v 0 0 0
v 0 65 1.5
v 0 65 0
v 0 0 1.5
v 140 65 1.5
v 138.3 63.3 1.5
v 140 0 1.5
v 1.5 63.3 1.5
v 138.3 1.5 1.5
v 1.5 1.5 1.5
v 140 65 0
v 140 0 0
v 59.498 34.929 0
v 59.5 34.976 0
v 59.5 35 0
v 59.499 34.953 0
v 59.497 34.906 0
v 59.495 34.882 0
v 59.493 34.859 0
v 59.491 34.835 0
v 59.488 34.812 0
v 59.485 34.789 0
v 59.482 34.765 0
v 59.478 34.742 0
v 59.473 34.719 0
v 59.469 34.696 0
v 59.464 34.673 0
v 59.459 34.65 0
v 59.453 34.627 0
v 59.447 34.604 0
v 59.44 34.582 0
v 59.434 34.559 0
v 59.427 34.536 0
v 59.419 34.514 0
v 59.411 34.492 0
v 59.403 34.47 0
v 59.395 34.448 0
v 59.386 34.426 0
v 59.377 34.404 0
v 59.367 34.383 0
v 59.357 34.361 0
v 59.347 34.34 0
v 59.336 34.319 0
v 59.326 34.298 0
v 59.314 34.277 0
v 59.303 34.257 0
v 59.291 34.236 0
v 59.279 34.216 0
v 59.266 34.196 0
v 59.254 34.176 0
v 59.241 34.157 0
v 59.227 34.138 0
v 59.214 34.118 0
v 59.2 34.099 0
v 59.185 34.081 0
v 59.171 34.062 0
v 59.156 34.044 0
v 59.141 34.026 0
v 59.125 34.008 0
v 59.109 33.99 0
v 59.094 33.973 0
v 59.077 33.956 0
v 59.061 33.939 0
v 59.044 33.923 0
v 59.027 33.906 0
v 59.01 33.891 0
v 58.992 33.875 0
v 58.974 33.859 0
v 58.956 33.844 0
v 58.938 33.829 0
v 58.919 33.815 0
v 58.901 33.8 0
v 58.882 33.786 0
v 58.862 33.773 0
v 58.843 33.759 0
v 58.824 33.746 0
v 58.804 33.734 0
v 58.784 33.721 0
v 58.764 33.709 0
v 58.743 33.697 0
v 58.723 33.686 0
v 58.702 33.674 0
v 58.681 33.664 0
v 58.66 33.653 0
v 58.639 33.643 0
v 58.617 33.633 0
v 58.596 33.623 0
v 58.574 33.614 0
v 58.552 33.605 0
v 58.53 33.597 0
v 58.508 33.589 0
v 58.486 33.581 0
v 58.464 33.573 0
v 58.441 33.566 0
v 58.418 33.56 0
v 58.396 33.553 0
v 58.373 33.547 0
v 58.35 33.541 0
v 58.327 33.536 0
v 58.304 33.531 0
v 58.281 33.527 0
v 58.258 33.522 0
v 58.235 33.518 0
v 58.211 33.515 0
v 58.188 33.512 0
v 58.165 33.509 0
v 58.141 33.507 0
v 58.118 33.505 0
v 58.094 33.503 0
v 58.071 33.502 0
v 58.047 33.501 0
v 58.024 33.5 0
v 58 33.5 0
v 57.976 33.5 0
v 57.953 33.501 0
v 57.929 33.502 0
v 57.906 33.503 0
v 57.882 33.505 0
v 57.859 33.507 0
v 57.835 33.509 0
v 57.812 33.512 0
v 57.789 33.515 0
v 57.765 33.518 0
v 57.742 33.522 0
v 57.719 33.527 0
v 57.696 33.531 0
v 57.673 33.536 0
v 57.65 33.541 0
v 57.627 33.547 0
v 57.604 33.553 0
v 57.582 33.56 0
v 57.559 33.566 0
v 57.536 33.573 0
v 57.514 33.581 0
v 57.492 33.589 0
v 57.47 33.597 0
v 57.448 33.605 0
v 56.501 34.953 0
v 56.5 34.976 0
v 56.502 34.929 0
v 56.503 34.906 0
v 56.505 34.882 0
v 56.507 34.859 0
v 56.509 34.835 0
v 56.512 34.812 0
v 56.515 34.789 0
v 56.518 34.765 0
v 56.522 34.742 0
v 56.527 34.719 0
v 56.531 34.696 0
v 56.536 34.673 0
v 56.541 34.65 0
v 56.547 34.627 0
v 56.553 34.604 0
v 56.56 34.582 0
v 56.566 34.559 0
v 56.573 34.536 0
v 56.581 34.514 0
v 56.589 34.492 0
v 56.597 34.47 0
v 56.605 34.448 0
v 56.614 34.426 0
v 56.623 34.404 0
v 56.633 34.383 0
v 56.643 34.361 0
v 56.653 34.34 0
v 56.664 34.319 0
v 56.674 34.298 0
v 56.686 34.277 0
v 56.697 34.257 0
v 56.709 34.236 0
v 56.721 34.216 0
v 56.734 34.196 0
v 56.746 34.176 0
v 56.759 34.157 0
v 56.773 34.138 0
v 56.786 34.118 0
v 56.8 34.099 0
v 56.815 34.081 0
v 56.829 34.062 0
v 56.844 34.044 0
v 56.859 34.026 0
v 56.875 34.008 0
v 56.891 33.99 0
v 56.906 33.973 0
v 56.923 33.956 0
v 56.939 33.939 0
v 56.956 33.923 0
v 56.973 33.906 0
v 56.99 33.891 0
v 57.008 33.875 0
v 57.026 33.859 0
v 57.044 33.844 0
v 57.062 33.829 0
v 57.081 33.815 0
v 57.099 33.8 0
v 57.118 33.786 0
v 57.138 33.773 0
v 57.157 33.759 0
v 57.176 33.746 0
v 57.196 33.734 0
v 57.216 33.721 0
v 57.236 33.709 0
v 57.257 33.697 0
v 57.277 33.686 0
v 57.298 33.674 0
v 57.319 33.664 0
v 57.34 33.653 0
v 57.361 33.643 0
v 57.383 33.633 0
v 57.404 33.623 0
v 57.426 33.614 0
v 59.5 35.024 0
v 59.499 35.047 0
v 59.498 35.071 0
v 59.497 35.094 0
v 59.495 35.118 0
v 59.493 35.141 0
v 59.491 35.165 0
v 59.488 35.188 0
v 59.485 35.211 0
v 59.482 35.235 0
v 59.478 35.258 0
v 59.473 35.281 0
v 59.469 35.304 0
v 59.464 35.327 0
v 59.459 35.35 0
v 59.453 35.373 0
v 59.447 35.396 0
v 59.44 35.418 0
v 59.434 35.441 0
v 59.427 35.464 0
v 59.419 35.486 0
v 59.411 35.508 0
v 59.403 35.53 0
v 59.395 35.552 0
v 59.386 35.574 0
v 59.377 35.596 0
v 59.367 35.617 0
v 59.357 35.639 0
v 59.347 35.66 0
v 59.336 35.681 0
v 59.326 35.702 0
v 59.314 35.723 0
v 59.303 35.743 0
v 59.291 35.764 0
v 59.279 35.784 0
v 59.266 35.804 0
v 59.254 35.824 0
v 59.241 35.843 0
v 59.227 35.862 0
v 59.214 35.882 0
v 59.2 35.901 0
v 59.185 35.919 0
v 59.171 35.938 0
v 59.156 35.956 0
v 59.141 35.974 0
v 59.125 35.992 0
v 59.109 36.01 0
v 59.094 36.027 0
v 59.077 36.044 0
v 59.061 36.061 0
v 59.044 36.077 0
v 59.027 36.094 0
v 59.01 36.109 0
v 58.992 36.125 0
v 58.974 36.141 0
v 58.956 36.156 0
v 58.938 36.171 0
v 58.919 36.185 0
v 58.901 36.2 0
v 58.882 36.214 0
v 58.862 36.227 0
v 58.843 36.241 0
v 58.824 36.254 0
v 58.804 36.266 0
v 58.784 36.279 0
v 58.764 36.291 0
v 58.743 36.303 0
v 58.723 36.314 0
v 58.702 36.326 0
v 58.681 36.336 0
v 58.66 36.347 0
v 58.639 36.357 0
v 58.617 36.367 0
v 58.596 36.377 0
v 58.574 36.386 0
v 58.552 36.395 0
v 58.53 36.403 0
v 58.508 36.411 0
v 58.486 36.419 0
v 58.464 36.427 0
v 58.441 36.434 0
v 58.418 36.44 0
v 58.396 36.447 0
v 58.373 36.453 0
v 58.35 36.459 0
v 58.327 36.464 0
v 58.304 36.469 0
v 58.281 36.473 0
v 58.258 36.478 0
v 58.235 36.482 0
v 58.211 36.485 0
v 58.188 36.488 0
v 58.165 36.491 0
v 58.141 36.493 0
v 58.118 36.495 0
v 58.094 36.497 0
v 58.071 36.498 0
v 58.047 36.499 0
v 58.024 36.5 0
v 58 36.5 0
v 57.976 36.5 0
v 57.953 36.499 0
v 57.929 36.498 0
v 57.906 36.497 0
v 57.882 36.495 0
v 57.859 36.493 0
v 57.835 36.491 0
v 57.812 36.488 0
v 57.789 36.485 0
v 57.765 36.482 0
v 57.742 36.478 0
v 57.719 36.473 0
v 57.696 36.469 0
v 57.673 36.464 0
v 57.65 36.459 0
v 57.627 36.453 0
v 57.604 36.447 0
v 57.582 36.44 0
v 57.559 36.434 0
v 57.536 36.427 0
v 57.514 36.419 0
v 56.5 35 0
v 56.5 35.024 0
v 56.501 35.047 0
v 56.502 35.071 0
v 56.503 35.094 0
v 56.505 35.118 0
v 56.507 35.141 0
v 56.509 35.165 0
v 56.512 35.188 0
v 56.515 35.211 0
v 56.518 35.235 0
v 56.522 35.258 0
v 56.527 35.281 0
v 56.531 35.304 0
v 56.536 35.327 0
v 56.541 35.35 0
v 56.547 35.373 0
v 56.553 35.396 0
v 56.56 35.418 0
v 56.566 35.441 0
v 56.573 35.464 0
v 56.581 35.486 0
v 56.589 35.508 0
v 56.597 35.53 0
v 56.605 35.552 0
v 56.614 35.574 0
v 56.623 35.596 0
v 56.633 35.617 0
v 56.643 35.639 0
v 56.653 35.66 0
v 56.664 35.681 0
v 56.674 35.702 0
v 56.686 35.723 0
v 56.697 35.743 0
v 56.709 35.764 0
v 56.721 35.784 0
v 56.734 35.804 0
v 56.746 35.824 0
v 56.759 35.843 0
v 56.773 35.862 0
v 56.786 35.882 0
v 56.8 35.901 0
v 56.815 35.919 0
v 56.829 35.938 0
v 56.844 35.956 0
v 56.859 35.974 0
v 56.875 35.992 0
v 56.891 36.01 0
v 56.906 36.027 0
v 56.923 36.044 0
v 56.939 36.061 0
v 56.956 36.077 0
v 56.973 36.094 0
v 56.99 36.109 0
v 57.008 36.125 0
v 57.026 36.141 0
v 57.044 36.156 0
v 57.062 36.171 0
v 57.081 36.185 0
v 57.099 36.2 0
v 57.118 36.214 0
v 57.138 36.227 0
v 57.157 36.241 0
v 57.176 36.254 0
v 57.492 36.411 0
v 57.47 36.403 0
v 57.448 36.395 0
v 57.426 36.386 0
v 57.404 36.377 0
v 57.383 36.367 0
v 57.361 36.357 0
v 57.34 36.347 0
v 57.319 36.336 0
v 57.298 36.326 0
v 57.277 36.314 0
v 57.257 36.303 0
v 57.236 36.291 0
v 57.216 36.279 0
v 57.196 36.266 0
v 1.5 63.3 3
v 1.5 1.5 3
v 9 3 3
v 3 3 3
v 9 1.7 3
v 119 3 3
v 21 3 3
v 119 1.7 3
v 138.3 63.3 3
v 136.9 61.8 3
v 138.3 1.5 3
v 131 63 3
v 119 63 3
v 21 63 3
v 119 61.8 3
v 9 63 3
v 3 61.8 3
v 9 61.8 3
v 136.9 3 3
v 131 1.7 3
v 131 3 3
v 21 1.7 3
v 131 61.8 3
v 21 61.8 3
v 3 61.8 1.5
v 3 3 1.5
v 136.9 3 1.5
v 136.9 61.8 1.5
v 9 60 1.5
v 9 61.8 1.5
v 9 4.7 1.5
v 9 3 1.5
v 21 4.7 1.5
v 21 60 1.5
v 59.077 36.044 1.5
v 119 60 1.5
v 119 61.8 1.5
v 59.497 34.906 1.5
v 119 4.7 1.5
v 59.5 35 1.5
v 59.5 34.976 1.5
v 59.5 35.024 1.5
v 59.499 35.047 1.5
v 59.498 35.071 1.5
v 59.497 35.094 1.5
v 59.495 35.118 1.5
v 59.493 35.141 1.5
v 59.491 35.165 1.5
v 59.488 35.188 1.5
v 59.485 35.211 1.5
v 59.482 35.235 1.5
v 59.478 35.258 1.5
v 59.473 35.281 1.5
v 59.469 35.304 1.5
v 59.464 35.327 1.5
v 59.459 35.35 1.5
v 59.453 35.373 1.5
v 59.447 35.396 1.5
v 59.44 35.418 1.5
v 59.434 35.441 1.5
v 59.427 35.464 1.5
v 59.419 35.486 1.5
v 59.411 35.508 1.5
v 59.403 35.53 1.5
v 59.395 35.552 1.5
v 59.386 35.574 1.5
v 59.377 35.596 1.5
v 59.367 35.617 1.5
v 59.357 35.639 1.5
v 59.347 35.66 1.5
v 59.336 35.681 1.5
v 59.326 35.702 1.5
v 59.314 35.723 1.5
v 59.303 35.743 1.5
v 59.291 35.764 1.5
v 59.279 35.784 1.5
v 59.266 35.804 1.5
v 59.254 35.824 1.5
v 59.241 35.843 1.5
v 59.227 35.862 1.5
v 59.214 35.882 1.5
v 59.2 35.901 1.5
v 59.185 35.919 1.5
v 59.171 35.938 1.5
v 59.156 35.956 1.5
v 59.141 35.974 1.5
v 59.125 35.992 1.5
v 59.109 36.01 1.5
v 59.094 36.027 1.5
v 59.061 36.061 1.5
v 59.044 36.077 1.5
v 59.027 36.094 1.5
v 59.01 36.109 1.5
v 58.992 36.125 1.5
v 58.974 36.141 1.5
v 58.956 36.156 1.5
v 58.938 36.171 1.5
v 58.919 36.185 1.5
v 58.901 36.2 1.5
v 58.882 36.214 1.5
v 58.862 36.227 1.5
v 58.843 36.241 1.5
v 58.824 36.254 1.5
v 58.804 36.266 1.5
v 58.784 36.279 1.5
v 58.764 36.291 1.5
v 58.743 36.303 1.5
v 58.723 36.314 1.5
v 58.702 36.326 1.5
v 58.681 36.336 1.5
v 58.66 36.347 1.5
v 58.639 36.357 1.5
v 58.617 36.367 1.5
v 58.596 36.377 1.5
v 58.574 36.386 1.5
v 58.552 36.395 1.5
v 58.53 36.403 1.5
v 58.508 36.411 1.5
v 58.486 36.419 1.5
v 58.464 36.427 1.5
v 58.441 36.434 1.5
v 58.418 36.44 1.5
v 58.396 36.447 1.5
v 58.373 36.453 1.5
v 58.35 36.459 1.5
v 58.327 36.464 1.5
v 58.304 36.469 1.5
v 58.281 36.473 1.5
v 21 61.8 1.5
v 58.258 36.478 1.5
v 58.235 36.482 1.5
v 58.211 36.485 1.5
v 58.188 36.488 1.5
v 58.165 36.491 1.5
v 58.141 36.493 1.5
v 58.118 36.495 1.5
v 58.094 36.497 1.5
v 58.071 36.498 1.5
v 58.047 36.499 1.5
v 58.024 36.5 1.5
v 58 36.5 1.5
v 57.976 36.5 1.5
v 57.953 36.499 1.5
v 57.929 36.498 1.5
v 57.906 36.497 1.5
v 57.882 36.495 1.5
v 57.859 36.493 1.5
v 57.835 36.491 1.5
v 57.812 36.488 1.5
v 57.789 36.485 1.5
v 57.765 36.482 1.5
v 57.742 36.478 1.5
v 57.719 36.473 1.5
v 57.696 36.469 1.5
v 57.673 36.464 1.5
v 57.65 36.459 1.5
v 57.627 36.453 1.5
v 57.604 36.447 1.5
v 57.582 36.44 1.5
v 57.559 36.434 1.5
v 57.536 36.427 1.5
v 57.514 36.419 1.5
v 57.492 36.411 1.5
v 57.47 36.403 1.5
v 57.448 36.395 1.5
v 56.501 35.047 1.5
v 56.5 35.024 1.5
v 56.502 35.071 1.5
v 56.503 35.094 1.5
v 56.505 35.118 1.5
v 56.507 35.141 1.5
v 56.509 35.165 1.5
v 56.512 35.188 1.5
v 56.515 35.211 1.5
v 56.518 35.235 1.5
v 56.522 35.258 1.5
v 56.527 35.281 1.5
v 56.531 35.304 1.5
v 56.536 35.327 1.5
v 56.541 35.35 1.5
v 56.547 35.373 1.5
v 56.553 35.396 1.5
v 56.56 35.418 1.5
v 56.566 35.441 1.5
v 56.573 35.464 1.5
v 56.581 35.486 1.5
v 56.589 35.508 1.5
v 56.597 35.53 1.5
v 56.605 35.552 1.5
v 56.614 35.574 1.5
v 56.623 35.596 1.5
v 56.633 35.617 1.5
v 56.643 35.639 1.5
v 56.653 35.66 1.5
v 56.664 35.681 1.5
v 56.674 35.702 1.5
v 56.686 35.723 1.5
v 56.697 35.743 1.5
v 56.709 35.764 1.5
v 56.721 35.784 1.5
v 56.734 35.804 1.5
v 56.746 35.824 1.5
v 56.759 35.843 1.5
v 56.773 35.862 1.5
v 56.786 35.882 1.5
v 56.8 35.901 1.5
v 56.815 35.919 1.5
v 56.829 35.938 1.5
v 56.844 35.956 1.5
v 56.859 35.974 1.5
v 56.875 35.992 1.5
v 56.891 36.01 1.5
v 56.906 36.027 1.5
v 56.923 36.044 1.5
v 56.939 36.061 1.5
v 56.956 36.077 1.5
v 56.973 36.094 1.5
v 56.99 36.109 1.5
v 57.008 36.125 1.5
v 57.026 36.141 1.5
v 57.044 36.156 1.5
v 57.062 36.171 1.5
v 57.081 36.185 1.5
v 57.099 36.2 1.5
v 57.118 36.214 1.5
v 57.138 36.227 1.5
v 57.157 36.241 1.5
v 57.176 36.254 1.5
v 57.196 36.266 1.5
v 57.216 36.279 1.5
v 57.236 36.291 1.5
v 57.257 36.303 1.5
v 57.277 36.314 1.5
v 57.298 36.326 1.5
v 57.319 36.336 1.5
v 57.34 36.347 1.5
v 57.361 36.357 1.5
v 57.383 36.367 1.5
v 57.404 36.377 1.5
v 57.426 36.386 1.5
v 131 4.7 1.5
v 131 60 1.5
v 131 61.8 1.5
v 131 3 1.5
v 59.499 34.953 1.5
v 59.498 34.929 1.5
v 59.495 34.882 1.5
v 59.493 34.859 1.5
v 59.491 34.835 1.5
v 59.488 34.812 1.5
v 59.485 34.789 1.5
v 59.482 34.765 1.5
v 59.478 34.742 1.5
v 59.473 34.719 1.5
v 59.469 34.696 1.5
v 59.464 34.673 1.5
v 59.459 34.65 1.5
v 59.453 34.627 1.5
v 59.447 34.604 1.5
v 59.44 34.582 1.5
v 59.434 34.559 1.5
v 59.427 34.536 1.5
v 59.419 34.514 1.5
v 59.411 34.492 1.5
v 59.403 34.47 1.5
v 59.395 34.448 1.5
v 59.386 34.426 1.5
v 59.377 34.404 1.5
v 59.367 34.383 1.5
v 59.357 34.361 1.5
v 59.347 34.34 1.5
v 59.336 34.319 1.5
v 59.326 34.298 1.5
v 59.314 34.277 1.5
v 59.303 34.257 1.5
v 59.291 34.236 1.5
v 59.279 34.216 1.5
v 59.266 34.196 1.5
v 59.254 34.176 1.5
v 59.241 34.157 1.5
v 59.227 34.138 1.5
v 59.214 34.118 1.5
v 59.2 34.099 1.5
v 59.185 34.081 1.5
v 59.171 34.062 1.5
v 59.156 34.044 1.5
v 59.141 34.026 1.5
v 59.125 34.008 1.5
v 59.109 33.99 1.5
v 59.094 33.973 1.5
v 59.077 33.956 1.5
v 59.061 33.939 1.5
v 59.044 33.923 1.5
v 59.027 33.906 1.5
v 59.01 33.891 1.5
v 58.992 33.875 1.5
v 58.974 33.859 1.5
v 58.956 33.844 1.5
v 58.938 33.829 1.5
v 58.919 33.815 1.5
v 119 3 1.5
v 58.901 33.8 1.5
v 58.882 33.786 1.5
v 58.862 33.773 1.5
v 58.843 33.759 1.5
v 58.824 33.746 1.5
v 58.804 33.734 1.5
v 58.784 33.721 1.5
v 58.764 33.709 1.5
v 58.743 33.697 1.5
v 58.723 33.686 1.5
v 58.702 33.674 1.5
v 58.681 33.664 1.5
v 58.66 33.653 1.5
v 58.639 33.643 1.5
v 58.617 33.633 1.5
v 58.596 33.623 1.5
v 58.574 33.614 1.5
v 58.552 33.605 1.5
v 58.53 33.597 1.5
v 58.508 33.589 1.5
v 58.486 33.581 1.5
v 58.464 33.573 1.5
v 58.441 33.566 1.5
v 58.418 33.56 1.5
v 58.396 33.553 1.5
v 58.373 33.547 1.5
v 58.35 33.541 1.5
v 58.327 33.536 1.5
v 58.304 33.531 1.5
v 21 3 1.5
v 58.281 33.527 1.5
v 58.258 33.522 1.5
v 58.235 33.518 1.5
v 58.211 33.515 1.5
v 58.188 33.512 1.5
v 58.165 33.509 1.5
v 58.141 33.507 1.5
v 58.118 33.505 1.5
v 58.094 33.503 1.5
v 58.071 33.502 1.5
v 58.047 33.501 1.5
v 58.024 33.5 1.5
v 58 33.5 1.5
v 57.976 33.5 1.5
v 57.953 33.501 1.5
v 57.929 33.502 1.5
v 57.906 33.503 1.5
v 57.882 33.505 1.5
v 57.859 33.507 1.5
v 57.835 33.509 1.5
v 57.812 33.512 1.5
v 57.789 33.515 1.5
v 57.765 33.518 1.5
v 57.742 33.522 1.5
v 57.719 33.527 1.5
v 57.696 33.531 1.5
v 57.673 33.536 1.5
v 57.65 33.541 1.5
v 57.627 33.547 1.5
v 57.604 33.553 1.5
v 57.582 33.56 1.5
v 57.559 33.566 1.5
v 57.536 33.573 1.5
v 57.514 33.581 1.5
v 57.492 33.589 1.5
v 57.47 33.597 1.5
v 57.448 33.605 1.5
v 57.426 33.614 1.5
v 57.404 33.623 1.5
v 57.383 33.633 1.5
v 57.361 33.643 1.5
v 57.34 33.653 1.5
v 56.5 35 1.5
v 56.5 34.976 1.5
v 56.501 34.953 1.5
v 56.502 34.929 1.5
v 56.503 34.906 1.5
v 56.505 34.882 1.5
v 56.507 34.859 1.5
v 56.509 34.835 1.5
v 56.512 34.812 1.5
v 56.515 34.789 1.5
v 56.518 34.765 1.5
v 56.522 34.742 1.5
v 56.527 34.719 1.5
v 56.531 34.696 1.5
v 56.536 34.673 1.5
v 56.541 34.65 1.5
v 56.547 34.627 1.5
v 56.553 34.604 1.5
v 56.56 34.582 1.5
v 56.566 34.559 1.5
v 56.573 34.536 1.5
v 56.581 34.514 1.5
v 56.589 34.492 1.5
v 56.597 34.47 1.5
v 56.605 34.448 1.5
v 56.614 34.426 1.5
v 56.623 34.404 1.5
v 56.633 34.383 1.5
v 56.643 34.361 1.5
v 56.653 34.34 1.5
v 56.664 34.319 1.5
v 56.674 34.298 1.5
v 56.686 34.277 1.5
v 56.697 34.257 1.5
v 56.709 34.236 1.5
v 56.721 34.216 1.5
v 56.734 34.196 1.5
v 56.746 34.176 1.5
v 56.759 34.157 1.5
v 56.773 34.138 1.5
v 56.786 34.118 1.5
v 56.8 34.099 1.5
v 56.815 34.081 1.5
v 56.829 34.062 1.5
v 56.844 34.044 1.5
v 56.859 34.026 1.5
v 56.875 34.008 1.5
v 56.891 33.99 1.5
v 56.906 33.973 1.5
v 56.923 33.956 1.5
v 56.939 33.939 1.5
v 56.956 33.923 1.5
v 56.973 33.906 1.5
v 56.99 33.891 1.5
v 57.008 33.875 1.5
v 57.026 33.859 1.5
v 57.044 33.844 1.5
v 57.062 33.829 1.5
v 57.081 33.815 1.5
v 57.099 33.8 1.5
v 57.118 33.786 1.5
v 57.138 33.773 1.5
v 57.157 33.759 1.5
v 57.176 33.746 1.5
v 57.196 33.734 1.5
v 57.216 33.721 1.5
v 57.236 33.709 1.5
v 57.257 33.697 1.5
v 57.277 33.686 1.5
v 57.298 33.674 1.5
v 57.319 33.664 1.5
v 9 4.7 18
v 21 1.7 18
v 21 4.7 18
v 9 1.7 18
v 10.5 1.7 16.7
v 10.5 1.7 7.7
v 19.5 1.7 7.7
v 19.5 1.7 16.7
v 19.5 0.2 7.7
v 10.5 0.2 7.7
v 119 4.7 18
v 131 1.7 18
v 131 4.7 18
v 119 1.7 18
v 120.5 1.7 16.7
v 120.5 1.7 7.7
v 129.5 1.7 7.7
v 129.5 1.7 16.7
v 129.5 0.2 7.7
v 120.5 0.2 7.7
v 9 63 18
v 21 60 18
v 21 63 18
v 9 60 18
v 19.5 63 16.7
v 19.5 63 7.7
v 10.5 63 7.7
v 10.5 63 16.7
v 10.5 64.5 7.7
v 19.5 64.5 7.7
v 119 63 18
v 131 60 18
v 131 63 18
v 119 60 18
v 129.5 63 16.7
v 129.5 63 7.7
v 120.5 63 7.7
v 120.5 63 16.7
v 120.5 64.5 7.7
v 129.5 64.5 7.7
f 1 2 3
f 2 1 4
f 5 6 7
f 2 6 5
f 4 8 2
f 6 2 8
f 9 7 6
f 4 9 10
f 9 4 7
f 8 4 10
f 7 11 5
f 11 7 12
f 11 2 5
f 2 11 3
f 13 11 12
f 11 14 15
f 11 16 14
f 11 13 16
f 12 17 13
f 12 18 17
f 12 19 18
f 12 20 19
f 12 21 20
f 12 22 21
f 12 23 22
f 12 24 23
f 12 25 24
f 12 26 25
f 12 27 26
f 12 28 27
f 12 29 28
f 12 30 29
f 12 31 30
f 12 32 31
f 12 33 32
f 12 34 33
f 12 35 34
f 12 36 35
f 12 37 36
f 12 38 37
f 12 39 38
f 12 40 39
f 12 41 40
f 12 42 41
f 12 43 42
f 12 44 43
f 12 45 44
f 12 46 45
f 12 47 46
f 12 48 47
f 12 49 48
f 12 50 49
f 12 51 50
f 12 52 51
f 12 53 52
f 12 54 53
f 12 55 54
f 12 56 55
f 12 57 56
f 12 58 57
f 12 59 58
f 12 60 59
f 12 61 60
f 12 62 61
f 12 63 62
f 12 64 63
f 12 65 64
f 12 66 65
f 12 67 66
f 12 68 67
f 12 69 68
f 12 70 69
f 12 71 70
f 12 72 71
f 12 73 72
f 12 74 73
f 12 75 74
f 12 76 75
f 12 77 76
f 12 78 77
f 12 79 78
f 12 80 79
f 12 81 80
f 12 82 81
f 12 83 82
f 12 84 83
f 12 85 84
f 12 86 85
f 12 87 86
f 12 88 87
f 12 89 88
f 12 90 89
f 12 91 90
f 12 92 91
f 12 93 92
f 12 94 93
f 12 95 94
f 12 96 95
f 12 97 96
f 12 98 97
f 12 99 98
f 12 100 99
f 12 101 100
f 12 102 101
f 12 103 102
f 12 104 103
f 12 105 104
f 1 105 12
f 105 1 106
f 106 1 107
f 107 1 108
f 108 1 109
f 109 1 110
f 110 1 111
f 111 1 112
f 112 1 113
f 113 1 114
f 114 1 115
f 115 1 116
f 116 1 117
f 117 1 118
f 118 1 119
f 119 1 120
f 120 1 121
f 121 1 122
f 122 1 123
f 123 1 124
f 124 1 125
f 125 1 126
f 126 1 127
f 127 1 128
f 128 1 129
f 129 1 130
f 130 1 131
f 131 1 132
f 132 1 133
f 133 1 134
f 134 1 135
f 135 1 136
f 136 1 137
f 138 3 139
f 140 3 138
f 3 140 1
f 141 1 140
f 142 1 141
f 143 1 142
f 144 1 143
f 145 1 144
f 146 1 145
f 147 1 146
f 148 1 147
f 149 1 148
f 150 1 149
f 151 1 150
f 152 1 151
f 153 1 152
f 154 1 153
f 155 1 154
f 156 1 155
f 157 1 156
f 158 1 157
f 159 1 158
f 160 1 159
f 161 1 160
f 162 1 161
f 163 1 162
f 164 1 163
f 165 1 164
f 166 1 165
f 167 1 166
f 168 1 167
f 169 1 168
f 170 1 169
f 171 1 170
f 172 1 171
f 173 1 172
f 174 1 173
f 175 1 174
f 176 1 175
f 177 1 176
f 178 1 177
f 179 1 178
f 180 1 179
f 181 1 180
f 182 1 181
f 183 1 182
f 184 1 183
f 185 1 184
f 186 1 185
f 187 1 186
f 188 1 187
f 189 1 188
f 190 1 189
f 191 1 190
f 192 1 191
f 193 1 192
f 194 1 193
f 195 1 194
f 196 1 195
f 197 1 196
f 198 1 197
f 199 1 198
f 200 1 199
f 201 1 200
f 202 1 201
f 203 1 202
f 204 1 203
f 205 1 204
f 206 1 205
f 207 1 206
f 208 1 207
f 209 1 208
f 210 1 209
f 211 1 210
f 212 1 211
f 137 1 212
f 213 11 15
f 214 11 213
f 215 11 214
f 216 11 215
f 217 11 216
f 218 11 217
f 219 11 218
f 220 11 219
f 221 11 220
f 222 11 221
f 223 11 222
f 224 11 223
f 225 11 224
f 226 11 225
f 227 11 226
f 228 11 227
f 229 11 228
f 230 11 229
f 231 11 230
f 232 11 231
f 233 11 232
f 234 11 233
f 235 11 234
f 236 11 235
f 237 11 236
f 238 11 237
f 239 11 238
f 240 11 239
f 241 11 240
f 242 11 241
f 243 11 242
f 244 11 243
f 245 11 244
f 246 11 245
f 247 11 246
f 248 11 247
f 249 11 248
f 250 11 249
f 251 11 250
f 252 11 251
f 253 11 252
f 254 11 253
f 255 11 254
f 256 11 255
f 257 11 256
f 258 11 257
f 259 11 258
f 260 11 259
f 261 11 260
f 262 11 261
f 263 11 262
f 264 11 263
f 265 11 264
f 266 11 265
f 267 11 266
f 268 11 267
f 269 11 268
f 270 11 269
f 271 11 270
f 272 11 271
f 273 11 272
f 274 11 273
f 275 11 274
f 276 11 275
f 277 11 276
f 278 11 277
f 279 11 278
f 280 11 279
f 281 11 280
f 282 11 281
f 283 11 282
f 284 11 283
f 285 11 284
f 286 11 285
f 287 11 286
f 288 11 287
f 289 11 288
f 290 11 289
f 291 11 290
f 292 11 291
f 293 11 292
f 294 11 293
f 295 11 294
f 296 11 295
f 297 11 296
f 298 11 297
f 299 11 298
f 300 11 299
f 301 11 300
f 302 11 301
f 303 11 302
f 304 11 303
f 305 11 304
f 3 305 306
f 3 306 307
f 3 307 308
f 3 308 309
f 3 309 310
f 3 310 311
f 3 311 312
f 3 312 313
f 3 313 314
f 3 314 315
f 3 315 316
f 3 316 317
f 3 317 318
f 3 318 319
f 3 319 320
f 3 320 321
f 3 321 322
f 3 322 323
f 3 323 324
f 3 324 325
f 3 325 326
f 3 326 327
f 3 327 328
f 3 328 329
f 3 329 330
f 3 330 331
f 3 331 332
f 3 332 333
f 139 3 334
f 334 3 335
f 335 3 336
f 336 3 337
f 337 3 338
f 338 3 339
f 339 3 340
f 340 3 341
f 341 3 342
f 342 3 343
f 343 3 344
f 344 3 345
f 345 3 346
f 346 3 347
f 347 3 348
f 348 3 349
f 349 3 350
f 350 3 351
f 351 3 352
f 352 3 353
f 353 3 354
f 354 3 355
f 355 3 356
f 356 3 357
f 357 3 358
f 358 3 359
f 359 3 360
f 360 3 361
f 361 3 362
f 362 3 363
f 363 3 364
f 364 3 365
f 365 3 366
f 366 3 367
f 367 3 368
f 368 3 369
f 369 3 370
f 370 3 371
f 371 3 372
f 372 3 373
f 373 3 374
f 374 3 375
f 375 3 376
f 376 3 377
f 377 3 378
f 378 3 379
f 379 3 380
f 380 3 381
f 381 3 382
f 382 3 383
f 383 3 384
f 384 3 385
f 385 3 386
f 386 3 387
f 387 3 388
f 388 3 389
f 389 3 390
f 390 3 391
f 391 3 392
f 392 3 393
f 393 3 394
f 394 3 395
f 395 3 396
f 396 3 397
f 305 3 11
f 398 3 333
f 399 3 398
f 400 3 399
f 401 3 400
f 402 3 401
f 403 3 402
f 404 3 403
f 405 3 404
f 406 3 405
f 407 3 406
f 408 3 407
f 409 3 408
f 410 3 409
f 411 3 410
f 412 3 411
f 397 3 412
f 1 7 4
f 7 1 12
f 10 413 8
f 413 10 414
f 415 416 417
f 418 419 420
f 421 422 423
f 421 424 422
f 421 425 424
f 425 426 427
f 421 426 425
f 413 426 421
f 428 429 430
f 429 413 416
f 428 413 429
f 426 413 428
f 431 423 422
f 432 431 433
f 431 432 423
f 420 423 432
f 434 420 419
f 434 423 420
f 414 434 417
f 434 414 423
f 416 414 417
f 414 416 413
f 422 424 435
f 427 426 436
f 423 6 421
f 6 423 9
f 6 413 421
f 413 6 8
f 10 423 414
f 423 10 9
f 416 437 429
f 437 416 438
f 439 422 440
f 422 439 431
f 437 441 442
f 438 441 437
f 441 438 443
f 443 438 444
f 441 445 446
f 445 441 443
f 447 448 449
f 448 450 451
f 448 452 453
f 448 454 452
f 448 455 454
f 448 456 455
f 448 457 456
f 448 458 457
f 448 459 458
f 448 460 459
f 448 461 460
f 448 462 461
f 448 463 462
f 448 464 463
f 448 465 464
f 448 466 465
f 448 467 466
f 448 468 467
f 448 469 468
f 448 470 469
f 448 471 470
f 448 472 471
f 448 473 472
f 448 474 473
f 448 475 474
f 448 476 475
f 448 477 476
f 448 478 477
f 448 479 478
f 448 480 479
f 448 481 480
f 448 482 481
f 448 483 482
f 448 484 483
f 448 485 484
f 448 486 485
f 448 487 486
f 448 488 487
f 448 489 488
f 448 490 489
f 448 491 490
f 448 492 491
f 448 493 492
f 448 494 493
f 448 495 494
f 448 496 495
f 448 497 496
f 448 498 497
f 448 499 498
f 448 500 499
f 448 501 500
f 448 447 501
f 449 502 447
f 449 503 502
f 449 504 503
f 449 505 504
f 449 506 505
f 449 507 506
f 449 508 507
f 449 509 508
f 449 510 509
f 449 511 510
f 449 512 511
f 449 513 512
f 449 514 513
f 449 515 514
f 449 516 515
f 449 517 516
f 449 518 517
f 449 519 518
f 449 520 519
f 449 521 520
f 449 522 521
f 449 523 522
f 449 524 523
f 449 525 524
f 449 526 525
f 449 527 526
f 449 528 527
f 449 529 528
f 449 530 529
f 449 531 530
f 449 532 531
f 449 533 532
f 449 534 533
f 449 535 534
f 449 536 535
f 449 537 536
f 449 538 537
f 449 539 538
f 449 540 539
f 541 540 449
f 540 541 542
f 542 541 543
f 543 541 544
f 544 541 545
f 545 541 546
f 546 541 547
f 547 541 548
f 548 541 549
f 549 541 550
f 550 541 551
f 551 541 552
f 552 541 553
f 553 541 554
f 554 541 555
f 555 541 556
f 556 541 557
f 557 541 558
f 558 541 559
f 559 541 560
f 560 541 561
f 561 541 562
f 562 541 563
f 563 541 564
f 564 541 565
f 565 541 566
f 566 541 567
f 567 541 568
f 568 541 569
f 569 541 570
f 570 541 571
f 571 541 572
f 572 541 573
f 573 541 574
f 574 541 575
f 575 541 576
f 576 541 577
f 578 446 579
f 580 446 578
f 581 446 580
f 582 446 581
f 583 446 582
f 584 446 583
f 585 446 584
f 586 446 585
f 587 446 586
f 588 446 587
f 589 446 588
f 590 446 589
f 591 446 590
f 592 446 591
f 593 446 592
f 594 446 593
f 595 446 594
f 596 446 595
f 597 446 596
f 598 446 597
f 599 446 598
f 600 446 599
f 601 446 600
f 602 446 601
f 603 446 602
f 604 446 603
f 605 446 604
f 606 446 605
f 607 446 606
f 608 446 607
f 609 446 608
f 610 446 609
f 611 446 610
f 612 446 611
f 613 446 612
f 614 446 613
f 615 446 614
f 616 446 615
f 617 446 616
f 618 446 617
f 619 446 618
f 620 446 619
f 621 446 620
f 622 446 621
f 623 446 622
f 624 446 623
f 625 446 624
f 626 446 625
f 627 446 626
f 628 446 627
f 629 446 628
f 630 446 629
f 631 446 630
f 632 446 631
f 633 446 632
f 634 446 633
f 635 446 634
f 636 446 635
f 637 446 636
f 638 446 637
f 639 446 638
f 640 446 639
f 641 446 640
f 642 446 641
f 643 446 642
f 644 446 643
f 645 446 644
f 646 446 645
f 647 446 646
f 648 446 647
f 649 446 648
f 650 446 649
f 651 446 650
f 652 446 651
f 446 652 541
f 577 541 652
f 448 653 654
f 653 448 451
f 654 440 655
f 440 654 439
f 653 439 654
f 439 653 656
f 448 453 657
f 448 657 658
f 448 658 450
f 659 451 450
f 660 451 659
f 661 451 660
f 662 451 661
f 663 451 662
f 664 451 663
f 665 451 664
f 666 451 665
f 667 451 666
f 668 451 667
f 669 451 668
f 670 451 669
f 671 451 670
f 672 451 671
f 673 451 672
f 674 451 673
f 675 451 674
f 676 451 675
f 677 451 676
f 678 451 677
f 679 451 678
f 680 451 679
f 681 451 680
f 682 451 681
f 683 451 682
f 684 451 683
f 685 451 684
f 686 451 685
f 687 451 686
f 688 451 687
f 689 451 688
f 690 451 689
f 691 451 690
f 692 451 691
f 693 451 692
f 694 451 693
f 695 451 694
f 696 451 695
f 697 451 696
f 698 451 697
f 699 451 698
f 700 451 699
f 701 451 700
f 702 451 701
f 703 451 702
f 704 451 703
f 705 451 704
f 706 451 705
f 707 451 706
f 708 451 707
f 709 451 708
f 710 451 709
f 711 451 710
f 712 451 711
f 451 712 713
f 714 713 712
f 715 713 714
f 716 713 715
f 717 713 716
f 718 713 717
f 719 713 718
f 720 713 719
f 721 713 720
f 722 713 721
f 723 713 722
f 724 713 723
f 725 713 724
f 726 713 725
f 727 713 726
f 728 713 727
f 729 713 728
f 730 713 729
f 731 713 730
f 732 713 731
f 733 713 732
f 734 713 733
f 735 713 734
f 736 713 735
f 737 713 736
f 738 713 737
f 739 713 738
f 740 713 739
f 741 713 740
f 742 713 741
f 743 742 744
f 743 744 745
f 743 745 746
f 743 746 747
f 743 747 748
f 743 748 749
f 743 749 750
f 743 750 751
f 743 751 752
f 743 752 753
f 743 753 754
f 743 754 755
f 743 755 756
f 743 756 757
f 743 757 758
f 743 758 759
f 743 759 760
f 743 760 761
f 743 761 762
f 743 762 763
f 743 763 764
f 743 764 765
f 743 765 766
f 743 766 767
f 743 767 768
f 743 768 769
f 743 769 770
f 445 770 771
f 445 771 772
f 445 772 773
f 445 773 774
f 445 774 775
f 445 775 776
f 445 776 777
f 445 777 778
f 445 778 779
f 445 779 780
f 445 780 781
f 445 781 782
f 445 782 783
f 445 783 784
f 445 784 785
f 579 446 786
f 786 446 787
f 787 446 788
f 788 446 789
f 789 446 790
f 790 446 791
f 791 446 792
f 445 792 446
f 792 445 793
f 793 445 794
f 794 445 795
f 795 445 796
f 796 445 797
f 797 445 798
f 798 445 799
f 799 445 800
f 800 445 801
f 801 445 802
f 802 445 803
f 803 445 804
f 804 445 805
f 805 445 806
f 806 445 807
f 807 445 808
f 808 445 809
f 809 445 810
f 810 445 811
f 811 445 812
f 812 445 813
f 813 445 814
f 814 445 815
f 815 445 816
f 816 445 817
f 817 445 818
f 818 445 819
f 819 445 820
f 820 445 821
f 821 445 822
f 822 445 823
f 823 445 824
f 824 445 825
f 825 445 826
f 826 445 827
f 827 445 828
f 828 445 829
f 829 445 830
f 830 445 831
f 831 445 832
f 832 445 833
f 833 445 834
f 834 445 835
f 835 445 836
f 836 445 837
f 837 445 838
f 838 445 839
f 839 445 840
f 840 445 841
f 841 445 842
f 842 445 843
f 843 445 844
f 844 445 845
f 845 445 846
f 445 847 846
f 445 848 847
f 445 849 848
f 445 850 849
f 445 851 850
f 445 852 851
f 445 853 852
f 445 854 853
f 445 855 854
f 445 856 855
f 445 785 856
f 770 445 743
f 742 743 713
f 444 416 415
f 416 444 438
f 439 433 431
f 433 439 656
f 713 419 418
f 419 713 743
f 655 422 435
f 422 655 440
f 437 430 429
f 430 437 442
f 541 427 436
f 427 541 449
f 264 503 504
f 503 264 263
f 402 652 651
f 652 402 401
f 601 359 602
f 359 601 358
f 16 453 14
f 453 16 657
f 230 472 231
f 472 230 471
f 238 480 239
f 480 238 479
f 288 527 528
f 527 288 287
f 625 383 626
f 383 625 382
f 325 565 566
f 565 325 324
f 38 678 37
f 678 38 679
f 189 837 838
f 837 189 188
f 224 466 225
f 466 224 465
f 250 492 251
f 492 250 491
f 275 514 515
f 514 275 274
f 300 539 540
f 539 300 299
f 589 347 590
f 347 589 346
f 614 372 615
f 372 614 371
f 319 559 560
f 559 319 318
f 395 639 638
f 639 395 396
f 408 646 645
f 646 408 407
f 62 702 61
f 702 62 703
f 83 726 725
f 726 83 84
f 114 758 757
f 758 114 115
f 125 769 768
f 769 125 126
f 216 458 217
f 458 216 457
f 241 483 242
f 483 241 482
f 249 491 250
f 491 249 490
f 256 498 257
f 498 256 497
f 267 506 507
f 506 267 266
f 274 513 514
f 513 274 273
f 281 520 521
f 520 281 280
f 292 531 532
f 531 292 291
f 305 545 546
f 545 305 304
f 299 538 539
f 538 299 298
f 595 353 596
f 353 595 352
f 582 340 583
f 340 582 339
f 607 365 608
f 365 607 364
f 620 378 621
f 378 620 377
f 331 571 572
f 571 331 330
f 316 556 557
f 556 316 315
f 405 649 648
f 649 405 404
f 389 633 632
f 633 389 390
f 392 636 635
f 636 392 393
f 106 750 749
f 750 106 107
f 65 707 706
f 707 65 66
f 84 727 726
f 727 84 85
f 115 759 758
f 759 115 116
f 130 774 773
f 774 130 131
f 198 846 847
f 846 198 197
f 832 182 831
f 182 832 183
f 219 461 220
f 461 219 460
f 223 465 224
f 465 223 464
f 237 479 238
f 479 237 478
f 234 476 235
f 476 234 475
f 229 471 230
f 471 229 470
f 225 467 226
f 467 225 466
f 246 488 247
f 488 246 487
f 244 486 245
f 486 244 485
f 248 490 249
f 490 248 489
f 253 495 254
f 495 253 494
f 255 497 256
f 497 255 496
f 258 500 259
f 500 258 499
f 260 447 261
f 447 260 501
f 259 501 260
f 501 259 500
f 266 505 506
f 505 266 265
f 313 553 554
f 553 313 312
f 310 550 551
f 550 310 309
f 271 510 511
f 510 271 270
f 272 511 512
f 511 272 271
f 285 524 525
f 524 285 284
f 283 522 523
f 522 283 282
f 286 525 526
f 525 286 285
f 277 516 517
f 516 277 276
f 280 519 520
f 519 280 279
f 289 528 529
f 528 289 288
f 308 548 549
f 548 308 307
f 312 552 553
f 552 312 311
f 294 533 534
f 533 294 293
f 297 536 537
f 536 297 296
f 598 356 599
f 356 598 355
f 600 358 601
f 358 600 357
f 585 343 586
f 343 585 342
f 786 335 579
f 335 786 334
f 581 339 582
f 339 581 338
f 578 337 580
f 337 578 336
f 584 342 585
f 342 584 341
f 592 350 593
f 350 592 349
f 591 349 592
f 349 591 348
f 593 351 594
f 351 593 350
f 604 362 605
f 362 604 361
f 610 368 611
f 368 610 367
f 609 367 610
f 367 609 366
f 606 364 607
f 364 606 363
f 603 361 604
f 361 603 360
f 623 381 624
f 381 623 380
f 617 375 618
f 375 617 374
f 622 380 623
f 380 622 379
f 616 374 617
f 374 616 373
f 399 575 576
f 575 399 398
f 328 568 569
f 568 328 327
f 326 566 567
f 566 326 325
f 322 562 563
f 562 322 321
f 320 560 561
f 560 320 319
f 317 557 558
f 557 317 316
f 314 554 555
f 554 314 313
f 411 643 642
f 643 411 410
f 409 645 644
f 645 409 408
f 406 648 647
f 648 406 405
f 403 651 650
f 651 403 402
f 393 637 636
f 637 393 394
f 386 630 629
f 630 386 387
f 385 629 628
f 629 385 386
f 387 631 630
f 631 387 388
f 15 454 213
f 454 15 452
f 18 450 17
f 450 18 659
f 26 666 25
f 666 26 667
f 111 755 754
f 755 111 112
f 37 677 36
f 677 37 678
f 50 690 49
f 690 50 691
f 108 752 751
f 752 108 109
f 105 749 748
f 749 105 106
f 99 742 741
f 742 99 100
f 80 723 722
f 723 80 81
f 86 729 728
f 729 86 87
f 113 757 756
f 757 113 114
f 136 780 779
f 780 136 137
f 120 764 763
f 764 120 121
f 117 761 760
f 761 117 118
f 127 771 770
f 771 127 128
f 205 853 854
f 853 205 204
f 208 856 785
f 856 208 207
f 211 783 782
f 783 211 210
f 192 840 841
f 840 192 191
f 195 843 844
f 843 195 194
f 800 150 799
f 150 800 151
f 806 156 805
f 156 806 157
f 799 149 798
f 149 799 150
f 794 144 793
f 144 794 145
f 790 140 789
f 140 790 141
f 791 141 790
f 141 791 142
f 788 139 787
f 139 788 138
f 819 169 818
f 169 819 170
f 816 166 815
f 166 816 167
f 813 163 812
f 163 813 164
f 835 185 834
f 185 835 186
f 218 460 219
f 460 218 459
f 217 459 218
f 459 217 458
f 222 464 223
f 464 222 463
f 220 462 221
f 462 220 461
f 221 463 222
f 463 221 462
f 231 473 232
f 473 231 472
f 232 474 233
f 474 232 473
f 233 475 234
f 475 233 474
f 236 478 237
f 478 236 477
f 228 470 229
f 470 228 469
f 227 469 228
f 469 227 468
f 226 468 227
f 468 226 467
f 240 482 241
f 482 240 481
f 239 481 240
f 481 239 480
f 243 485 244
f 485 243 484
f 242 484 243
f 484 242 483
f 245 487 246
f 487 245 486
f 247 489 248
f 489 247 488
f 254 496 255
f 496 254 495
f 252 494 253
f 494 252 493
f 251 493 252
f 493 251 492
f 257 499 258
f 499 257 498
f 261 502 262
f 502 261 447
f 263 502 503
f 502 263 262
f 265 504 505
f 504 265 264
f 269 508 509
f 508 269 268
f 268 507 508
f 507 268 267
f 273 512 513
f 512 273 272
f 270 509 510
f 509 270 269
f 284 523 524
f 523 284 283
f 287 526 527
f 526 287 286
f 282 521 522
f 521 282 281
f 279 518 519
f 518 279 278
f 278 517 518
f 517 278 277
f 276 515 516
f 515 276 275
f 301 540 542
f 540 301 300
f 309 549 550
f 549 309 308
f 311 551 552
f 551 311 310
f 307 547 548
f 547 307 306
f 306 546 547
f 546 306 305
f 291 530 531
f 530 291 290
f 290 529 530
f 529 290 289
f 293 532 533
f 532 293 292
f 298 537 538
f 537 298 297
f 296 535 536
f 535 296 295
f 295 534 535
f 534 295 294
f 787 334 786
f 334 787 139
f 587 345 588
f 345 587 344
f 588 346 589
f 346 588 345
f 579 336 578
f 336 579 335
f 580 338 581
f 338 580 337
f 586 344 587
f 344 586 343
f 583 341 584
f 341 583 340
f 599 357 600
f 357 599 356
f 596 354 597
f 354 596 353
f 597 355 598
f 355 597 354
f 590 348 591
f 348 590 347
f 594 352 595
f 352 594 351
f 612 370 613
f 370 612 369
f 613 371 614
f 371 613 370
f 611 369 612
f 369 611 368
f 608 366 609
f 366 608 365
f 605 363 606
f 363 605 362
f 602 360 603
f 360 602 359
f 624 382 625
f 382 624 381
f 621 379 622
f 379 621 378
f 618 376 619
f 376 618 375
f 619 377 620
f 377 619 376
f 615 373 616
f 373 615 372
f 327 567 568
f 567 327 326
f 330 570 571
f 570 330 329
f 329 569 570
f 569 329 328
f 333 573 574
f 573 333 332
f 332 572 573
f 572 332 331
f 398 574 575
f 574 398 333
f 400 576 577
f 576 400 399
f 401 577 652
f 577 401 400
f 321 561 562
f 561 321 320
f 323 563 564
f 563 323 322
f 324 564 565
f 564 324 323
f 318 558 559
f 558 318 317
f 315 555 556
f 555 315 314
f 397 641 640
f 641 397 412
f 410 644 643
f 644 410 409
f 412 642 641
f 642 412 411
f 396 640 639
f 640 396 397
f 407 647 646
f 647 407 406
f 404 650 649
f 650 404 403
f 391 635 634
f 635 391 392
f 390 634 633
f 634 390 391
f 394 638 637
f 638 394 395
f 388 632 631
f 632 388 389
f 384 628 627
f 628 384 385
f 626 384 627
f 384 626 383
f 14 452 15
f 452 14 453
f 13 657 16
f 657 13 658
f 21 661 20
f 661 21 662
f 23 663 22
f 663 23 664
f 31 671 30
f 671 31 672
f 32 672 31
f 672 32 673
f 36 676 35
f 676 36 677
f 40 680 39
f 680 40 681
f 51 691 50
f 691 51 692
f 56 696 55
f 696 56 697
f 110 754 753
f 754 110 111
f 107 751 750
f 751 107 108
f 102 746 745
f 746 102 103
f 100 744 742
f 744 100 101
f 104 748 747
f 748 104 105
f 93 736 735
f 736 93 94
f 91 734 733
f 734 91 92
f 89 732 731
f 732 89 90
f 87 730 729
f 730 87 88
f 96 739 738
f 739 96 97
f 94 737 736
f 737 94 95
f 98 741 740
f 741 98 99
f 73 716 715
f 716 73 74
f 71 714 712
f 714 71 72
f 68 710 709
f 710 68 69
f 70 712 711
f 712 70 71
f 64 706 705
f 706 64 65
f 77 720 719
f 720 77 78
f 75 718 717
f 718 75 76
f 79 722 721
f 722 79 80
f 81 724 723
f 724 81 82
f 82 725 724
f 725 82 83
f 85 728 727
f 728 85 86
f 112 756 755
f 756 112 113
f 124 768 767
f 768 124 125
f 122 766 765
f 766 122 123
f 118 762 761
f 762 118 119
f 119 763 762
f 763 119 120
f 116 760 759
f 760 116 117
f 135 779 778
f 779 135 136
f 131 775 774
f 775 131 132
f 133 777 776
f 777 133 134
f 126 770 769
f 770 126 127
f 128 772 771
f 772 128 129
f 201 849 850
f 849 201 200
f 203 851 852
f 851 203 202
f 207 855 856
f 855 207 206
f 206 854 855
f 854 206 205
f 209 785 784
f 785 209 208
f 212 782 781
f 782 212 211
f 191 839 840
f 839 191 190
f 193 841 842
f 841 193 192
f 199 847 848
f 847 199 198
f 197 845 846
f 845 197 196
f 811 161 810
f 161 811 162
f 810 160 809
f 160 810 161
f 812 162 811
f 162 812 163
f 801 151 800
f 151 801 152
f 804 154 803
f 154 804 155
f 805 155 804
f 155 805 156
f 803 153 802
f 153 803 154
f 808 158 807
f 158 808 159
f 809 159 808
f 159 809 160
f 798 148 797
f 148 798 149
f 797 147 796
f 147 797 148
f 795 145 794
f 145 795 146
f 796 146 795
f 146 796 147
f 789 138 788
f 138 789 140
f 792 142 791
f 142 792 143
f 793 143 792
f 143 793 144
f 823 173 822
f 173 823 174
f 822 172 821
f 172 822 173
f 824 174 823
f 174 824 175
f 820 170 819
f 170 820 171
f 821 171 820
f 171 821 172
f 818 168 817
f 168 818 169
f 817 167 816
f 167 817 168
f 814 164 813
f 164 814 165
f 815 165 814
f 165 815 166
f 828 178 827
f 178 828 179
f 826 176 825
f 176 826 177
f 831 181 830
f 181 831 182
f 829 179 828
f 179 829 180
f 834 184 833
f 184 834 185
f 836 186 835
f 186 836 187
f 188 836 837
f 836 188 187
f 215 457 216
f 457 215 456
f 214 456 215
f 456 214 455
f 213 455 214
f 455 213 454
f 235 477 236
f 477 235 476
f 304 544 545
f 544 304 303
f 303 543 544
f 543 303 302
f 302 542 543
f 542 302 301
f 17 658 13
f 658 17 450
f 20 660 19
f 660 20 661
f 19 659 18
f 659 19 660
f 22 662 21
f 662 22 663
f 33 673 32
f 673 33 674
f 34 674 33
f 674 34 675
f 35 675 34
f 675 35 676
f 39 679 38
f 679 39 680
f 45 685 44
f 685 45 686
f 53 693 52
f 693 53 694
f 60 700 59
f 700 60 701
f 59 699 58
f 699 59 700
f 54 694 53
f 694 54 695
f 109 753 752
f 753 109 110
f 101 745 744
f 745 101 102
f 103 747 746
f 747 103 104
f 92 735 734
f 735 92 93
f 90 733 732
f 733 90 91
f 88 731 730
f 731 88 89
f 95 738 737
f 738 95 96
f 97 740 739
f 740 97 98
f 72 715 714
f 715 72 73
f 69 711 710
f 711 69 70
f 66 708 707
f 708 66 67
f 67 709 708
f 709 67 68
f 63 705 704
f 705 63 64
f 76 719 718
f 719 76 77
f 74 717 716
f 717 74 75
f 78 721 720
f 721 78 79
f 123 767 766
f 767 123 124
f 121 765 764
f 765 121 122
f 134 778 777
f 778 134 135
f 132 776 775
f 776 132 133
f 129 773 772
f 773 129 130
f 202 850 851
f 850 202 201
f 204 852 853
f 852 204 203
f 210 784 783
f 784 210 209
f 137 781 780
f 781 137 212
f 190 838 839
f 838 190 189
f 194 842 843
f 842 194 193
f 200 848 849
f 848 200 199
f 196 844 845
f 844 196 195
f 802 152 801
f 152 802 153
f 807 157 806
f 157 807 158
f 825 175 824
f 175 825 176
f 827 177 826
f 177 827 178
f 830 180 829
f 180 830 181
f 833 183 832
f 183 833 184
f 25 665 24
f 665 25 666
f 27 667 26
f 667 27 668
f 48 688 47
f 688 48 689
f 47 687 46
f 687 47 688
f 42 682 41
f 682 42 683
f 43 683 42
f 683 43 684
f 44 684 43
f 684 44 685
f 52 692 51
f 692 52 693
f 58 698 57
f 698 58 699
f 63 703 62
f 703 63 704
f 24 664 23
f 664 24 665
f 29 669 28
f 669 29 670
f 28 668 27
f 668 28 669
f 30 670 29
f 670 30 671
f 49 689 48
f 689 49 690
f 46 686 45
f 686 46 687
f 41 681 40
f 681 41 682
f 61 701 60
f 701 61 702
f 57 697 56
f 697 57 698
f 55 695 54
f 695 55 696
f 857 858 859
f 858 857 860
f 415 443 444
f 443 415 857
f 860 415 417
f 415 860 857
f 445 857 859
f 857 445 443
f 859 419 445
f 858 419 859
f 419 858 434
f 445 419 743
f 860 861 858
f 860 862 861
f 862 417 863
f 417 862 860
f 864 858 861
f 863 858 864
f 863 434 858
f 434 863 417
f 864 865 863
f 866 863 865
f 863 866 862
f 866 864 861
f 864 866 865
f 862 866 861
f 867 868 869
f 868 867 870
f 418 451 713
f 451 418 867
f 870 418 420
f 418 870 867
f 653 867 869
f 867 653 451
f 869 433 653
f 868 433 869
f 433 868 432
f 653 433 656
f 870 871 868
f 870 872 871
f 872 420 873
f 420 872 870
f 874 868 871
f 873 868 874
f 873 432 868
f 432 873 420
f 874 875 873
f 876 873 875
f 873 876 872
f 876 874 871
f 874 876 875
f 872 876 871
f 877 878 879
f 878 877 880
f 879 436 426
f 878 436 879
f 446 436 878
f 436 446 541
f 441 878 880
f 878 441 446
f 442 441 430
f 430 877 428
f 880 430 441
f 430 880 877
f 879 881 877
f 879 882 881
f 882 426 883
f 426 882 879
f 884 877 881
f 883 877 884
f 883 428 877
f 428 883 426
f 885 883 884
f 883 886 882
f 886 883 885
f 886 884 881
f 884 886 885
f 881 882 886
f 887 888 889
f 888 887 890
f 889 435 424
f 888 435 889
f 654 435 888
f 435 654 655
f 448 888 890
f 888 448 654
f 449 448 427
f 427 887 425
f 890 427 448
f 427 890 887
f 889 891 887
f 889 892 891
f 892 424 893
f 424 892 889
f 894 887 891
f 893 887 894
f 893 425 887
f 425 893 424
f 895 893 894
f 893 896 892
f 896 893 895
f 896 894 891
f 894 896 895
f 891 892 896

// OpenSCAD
$fn=400;

rmc_width = 140;
rmc_depth = 65;
rmc_material_thickness = 1.5;

module lid_clip() {
    // Lid clips
    rotate([0,0,90])
    translate([-rmc_material_thickness,0,0])
    cube([15 + rmc_material_thickness, rmc_material_thickness * 2, 12]);
    // Create cliper-dingens
    color("grey")
    rotate([0,0,0])
    translate([0, 4.7, 1.5])
    linear_extrude(height=9)
    polygon(points = [[0, 0], [rmc_material_thickness, 0], [0, 9]]);
}

difference() {
    union() {
        // main cover
        cube([rmc_width, rmc_depth, rmc_material_thickness]);

        // Frame
        translate([rmc_material_thickness, rmc_material_thickness, rmc_material_thickness])
        cube([rmc_width - rmc_material_thickness * 2 - 0.2, rmc_depth  - rmc_material_thickness * 2 - 0.2, rmc_material_thickness]);

    }
    // Frame cutout
    color("red")
    translate([rmc_material_thickness * 2, rmc_material_thickness * 2, rmc_material_thickness])
    cube([rmc_width - rmc_material_thickness * 4 - 0.1, rmc_depth  - rmc_material_thickness * 4 - 0.2, rmc_material_thickness + 1]);    

    // Drill the hole for the antenna 
    color("red")
    translate([58,rmc_depth -30, -1])
    cylinder(h=rmc_material_thickness+2, r=1.5);

}


// Lid clips
// Front left
translate([11 + 10, rmc_material_thickness + 0.2, rmc_material_thickness * 2])
rotate([90,0,270])
lid_clip();

// Front right
translate([rmc_width -9, rmc_material_thickness + 0.2, rmc_material_thickness * 2])
rotate([90,0,270])
lid_clip();

// Back left
translate([9, rmc_depth - rmc_material_thickness - 0.5, rmc_material_thickness * 2])
rotate([90,0,90])
lid_clip();

// Back left
translate([rmc_width -11 - 10, rmc_depth - rmc_material_thickness - 0.5, rmc_material_thickness * 2])
rotate([90,0,90])
lid_clip();
